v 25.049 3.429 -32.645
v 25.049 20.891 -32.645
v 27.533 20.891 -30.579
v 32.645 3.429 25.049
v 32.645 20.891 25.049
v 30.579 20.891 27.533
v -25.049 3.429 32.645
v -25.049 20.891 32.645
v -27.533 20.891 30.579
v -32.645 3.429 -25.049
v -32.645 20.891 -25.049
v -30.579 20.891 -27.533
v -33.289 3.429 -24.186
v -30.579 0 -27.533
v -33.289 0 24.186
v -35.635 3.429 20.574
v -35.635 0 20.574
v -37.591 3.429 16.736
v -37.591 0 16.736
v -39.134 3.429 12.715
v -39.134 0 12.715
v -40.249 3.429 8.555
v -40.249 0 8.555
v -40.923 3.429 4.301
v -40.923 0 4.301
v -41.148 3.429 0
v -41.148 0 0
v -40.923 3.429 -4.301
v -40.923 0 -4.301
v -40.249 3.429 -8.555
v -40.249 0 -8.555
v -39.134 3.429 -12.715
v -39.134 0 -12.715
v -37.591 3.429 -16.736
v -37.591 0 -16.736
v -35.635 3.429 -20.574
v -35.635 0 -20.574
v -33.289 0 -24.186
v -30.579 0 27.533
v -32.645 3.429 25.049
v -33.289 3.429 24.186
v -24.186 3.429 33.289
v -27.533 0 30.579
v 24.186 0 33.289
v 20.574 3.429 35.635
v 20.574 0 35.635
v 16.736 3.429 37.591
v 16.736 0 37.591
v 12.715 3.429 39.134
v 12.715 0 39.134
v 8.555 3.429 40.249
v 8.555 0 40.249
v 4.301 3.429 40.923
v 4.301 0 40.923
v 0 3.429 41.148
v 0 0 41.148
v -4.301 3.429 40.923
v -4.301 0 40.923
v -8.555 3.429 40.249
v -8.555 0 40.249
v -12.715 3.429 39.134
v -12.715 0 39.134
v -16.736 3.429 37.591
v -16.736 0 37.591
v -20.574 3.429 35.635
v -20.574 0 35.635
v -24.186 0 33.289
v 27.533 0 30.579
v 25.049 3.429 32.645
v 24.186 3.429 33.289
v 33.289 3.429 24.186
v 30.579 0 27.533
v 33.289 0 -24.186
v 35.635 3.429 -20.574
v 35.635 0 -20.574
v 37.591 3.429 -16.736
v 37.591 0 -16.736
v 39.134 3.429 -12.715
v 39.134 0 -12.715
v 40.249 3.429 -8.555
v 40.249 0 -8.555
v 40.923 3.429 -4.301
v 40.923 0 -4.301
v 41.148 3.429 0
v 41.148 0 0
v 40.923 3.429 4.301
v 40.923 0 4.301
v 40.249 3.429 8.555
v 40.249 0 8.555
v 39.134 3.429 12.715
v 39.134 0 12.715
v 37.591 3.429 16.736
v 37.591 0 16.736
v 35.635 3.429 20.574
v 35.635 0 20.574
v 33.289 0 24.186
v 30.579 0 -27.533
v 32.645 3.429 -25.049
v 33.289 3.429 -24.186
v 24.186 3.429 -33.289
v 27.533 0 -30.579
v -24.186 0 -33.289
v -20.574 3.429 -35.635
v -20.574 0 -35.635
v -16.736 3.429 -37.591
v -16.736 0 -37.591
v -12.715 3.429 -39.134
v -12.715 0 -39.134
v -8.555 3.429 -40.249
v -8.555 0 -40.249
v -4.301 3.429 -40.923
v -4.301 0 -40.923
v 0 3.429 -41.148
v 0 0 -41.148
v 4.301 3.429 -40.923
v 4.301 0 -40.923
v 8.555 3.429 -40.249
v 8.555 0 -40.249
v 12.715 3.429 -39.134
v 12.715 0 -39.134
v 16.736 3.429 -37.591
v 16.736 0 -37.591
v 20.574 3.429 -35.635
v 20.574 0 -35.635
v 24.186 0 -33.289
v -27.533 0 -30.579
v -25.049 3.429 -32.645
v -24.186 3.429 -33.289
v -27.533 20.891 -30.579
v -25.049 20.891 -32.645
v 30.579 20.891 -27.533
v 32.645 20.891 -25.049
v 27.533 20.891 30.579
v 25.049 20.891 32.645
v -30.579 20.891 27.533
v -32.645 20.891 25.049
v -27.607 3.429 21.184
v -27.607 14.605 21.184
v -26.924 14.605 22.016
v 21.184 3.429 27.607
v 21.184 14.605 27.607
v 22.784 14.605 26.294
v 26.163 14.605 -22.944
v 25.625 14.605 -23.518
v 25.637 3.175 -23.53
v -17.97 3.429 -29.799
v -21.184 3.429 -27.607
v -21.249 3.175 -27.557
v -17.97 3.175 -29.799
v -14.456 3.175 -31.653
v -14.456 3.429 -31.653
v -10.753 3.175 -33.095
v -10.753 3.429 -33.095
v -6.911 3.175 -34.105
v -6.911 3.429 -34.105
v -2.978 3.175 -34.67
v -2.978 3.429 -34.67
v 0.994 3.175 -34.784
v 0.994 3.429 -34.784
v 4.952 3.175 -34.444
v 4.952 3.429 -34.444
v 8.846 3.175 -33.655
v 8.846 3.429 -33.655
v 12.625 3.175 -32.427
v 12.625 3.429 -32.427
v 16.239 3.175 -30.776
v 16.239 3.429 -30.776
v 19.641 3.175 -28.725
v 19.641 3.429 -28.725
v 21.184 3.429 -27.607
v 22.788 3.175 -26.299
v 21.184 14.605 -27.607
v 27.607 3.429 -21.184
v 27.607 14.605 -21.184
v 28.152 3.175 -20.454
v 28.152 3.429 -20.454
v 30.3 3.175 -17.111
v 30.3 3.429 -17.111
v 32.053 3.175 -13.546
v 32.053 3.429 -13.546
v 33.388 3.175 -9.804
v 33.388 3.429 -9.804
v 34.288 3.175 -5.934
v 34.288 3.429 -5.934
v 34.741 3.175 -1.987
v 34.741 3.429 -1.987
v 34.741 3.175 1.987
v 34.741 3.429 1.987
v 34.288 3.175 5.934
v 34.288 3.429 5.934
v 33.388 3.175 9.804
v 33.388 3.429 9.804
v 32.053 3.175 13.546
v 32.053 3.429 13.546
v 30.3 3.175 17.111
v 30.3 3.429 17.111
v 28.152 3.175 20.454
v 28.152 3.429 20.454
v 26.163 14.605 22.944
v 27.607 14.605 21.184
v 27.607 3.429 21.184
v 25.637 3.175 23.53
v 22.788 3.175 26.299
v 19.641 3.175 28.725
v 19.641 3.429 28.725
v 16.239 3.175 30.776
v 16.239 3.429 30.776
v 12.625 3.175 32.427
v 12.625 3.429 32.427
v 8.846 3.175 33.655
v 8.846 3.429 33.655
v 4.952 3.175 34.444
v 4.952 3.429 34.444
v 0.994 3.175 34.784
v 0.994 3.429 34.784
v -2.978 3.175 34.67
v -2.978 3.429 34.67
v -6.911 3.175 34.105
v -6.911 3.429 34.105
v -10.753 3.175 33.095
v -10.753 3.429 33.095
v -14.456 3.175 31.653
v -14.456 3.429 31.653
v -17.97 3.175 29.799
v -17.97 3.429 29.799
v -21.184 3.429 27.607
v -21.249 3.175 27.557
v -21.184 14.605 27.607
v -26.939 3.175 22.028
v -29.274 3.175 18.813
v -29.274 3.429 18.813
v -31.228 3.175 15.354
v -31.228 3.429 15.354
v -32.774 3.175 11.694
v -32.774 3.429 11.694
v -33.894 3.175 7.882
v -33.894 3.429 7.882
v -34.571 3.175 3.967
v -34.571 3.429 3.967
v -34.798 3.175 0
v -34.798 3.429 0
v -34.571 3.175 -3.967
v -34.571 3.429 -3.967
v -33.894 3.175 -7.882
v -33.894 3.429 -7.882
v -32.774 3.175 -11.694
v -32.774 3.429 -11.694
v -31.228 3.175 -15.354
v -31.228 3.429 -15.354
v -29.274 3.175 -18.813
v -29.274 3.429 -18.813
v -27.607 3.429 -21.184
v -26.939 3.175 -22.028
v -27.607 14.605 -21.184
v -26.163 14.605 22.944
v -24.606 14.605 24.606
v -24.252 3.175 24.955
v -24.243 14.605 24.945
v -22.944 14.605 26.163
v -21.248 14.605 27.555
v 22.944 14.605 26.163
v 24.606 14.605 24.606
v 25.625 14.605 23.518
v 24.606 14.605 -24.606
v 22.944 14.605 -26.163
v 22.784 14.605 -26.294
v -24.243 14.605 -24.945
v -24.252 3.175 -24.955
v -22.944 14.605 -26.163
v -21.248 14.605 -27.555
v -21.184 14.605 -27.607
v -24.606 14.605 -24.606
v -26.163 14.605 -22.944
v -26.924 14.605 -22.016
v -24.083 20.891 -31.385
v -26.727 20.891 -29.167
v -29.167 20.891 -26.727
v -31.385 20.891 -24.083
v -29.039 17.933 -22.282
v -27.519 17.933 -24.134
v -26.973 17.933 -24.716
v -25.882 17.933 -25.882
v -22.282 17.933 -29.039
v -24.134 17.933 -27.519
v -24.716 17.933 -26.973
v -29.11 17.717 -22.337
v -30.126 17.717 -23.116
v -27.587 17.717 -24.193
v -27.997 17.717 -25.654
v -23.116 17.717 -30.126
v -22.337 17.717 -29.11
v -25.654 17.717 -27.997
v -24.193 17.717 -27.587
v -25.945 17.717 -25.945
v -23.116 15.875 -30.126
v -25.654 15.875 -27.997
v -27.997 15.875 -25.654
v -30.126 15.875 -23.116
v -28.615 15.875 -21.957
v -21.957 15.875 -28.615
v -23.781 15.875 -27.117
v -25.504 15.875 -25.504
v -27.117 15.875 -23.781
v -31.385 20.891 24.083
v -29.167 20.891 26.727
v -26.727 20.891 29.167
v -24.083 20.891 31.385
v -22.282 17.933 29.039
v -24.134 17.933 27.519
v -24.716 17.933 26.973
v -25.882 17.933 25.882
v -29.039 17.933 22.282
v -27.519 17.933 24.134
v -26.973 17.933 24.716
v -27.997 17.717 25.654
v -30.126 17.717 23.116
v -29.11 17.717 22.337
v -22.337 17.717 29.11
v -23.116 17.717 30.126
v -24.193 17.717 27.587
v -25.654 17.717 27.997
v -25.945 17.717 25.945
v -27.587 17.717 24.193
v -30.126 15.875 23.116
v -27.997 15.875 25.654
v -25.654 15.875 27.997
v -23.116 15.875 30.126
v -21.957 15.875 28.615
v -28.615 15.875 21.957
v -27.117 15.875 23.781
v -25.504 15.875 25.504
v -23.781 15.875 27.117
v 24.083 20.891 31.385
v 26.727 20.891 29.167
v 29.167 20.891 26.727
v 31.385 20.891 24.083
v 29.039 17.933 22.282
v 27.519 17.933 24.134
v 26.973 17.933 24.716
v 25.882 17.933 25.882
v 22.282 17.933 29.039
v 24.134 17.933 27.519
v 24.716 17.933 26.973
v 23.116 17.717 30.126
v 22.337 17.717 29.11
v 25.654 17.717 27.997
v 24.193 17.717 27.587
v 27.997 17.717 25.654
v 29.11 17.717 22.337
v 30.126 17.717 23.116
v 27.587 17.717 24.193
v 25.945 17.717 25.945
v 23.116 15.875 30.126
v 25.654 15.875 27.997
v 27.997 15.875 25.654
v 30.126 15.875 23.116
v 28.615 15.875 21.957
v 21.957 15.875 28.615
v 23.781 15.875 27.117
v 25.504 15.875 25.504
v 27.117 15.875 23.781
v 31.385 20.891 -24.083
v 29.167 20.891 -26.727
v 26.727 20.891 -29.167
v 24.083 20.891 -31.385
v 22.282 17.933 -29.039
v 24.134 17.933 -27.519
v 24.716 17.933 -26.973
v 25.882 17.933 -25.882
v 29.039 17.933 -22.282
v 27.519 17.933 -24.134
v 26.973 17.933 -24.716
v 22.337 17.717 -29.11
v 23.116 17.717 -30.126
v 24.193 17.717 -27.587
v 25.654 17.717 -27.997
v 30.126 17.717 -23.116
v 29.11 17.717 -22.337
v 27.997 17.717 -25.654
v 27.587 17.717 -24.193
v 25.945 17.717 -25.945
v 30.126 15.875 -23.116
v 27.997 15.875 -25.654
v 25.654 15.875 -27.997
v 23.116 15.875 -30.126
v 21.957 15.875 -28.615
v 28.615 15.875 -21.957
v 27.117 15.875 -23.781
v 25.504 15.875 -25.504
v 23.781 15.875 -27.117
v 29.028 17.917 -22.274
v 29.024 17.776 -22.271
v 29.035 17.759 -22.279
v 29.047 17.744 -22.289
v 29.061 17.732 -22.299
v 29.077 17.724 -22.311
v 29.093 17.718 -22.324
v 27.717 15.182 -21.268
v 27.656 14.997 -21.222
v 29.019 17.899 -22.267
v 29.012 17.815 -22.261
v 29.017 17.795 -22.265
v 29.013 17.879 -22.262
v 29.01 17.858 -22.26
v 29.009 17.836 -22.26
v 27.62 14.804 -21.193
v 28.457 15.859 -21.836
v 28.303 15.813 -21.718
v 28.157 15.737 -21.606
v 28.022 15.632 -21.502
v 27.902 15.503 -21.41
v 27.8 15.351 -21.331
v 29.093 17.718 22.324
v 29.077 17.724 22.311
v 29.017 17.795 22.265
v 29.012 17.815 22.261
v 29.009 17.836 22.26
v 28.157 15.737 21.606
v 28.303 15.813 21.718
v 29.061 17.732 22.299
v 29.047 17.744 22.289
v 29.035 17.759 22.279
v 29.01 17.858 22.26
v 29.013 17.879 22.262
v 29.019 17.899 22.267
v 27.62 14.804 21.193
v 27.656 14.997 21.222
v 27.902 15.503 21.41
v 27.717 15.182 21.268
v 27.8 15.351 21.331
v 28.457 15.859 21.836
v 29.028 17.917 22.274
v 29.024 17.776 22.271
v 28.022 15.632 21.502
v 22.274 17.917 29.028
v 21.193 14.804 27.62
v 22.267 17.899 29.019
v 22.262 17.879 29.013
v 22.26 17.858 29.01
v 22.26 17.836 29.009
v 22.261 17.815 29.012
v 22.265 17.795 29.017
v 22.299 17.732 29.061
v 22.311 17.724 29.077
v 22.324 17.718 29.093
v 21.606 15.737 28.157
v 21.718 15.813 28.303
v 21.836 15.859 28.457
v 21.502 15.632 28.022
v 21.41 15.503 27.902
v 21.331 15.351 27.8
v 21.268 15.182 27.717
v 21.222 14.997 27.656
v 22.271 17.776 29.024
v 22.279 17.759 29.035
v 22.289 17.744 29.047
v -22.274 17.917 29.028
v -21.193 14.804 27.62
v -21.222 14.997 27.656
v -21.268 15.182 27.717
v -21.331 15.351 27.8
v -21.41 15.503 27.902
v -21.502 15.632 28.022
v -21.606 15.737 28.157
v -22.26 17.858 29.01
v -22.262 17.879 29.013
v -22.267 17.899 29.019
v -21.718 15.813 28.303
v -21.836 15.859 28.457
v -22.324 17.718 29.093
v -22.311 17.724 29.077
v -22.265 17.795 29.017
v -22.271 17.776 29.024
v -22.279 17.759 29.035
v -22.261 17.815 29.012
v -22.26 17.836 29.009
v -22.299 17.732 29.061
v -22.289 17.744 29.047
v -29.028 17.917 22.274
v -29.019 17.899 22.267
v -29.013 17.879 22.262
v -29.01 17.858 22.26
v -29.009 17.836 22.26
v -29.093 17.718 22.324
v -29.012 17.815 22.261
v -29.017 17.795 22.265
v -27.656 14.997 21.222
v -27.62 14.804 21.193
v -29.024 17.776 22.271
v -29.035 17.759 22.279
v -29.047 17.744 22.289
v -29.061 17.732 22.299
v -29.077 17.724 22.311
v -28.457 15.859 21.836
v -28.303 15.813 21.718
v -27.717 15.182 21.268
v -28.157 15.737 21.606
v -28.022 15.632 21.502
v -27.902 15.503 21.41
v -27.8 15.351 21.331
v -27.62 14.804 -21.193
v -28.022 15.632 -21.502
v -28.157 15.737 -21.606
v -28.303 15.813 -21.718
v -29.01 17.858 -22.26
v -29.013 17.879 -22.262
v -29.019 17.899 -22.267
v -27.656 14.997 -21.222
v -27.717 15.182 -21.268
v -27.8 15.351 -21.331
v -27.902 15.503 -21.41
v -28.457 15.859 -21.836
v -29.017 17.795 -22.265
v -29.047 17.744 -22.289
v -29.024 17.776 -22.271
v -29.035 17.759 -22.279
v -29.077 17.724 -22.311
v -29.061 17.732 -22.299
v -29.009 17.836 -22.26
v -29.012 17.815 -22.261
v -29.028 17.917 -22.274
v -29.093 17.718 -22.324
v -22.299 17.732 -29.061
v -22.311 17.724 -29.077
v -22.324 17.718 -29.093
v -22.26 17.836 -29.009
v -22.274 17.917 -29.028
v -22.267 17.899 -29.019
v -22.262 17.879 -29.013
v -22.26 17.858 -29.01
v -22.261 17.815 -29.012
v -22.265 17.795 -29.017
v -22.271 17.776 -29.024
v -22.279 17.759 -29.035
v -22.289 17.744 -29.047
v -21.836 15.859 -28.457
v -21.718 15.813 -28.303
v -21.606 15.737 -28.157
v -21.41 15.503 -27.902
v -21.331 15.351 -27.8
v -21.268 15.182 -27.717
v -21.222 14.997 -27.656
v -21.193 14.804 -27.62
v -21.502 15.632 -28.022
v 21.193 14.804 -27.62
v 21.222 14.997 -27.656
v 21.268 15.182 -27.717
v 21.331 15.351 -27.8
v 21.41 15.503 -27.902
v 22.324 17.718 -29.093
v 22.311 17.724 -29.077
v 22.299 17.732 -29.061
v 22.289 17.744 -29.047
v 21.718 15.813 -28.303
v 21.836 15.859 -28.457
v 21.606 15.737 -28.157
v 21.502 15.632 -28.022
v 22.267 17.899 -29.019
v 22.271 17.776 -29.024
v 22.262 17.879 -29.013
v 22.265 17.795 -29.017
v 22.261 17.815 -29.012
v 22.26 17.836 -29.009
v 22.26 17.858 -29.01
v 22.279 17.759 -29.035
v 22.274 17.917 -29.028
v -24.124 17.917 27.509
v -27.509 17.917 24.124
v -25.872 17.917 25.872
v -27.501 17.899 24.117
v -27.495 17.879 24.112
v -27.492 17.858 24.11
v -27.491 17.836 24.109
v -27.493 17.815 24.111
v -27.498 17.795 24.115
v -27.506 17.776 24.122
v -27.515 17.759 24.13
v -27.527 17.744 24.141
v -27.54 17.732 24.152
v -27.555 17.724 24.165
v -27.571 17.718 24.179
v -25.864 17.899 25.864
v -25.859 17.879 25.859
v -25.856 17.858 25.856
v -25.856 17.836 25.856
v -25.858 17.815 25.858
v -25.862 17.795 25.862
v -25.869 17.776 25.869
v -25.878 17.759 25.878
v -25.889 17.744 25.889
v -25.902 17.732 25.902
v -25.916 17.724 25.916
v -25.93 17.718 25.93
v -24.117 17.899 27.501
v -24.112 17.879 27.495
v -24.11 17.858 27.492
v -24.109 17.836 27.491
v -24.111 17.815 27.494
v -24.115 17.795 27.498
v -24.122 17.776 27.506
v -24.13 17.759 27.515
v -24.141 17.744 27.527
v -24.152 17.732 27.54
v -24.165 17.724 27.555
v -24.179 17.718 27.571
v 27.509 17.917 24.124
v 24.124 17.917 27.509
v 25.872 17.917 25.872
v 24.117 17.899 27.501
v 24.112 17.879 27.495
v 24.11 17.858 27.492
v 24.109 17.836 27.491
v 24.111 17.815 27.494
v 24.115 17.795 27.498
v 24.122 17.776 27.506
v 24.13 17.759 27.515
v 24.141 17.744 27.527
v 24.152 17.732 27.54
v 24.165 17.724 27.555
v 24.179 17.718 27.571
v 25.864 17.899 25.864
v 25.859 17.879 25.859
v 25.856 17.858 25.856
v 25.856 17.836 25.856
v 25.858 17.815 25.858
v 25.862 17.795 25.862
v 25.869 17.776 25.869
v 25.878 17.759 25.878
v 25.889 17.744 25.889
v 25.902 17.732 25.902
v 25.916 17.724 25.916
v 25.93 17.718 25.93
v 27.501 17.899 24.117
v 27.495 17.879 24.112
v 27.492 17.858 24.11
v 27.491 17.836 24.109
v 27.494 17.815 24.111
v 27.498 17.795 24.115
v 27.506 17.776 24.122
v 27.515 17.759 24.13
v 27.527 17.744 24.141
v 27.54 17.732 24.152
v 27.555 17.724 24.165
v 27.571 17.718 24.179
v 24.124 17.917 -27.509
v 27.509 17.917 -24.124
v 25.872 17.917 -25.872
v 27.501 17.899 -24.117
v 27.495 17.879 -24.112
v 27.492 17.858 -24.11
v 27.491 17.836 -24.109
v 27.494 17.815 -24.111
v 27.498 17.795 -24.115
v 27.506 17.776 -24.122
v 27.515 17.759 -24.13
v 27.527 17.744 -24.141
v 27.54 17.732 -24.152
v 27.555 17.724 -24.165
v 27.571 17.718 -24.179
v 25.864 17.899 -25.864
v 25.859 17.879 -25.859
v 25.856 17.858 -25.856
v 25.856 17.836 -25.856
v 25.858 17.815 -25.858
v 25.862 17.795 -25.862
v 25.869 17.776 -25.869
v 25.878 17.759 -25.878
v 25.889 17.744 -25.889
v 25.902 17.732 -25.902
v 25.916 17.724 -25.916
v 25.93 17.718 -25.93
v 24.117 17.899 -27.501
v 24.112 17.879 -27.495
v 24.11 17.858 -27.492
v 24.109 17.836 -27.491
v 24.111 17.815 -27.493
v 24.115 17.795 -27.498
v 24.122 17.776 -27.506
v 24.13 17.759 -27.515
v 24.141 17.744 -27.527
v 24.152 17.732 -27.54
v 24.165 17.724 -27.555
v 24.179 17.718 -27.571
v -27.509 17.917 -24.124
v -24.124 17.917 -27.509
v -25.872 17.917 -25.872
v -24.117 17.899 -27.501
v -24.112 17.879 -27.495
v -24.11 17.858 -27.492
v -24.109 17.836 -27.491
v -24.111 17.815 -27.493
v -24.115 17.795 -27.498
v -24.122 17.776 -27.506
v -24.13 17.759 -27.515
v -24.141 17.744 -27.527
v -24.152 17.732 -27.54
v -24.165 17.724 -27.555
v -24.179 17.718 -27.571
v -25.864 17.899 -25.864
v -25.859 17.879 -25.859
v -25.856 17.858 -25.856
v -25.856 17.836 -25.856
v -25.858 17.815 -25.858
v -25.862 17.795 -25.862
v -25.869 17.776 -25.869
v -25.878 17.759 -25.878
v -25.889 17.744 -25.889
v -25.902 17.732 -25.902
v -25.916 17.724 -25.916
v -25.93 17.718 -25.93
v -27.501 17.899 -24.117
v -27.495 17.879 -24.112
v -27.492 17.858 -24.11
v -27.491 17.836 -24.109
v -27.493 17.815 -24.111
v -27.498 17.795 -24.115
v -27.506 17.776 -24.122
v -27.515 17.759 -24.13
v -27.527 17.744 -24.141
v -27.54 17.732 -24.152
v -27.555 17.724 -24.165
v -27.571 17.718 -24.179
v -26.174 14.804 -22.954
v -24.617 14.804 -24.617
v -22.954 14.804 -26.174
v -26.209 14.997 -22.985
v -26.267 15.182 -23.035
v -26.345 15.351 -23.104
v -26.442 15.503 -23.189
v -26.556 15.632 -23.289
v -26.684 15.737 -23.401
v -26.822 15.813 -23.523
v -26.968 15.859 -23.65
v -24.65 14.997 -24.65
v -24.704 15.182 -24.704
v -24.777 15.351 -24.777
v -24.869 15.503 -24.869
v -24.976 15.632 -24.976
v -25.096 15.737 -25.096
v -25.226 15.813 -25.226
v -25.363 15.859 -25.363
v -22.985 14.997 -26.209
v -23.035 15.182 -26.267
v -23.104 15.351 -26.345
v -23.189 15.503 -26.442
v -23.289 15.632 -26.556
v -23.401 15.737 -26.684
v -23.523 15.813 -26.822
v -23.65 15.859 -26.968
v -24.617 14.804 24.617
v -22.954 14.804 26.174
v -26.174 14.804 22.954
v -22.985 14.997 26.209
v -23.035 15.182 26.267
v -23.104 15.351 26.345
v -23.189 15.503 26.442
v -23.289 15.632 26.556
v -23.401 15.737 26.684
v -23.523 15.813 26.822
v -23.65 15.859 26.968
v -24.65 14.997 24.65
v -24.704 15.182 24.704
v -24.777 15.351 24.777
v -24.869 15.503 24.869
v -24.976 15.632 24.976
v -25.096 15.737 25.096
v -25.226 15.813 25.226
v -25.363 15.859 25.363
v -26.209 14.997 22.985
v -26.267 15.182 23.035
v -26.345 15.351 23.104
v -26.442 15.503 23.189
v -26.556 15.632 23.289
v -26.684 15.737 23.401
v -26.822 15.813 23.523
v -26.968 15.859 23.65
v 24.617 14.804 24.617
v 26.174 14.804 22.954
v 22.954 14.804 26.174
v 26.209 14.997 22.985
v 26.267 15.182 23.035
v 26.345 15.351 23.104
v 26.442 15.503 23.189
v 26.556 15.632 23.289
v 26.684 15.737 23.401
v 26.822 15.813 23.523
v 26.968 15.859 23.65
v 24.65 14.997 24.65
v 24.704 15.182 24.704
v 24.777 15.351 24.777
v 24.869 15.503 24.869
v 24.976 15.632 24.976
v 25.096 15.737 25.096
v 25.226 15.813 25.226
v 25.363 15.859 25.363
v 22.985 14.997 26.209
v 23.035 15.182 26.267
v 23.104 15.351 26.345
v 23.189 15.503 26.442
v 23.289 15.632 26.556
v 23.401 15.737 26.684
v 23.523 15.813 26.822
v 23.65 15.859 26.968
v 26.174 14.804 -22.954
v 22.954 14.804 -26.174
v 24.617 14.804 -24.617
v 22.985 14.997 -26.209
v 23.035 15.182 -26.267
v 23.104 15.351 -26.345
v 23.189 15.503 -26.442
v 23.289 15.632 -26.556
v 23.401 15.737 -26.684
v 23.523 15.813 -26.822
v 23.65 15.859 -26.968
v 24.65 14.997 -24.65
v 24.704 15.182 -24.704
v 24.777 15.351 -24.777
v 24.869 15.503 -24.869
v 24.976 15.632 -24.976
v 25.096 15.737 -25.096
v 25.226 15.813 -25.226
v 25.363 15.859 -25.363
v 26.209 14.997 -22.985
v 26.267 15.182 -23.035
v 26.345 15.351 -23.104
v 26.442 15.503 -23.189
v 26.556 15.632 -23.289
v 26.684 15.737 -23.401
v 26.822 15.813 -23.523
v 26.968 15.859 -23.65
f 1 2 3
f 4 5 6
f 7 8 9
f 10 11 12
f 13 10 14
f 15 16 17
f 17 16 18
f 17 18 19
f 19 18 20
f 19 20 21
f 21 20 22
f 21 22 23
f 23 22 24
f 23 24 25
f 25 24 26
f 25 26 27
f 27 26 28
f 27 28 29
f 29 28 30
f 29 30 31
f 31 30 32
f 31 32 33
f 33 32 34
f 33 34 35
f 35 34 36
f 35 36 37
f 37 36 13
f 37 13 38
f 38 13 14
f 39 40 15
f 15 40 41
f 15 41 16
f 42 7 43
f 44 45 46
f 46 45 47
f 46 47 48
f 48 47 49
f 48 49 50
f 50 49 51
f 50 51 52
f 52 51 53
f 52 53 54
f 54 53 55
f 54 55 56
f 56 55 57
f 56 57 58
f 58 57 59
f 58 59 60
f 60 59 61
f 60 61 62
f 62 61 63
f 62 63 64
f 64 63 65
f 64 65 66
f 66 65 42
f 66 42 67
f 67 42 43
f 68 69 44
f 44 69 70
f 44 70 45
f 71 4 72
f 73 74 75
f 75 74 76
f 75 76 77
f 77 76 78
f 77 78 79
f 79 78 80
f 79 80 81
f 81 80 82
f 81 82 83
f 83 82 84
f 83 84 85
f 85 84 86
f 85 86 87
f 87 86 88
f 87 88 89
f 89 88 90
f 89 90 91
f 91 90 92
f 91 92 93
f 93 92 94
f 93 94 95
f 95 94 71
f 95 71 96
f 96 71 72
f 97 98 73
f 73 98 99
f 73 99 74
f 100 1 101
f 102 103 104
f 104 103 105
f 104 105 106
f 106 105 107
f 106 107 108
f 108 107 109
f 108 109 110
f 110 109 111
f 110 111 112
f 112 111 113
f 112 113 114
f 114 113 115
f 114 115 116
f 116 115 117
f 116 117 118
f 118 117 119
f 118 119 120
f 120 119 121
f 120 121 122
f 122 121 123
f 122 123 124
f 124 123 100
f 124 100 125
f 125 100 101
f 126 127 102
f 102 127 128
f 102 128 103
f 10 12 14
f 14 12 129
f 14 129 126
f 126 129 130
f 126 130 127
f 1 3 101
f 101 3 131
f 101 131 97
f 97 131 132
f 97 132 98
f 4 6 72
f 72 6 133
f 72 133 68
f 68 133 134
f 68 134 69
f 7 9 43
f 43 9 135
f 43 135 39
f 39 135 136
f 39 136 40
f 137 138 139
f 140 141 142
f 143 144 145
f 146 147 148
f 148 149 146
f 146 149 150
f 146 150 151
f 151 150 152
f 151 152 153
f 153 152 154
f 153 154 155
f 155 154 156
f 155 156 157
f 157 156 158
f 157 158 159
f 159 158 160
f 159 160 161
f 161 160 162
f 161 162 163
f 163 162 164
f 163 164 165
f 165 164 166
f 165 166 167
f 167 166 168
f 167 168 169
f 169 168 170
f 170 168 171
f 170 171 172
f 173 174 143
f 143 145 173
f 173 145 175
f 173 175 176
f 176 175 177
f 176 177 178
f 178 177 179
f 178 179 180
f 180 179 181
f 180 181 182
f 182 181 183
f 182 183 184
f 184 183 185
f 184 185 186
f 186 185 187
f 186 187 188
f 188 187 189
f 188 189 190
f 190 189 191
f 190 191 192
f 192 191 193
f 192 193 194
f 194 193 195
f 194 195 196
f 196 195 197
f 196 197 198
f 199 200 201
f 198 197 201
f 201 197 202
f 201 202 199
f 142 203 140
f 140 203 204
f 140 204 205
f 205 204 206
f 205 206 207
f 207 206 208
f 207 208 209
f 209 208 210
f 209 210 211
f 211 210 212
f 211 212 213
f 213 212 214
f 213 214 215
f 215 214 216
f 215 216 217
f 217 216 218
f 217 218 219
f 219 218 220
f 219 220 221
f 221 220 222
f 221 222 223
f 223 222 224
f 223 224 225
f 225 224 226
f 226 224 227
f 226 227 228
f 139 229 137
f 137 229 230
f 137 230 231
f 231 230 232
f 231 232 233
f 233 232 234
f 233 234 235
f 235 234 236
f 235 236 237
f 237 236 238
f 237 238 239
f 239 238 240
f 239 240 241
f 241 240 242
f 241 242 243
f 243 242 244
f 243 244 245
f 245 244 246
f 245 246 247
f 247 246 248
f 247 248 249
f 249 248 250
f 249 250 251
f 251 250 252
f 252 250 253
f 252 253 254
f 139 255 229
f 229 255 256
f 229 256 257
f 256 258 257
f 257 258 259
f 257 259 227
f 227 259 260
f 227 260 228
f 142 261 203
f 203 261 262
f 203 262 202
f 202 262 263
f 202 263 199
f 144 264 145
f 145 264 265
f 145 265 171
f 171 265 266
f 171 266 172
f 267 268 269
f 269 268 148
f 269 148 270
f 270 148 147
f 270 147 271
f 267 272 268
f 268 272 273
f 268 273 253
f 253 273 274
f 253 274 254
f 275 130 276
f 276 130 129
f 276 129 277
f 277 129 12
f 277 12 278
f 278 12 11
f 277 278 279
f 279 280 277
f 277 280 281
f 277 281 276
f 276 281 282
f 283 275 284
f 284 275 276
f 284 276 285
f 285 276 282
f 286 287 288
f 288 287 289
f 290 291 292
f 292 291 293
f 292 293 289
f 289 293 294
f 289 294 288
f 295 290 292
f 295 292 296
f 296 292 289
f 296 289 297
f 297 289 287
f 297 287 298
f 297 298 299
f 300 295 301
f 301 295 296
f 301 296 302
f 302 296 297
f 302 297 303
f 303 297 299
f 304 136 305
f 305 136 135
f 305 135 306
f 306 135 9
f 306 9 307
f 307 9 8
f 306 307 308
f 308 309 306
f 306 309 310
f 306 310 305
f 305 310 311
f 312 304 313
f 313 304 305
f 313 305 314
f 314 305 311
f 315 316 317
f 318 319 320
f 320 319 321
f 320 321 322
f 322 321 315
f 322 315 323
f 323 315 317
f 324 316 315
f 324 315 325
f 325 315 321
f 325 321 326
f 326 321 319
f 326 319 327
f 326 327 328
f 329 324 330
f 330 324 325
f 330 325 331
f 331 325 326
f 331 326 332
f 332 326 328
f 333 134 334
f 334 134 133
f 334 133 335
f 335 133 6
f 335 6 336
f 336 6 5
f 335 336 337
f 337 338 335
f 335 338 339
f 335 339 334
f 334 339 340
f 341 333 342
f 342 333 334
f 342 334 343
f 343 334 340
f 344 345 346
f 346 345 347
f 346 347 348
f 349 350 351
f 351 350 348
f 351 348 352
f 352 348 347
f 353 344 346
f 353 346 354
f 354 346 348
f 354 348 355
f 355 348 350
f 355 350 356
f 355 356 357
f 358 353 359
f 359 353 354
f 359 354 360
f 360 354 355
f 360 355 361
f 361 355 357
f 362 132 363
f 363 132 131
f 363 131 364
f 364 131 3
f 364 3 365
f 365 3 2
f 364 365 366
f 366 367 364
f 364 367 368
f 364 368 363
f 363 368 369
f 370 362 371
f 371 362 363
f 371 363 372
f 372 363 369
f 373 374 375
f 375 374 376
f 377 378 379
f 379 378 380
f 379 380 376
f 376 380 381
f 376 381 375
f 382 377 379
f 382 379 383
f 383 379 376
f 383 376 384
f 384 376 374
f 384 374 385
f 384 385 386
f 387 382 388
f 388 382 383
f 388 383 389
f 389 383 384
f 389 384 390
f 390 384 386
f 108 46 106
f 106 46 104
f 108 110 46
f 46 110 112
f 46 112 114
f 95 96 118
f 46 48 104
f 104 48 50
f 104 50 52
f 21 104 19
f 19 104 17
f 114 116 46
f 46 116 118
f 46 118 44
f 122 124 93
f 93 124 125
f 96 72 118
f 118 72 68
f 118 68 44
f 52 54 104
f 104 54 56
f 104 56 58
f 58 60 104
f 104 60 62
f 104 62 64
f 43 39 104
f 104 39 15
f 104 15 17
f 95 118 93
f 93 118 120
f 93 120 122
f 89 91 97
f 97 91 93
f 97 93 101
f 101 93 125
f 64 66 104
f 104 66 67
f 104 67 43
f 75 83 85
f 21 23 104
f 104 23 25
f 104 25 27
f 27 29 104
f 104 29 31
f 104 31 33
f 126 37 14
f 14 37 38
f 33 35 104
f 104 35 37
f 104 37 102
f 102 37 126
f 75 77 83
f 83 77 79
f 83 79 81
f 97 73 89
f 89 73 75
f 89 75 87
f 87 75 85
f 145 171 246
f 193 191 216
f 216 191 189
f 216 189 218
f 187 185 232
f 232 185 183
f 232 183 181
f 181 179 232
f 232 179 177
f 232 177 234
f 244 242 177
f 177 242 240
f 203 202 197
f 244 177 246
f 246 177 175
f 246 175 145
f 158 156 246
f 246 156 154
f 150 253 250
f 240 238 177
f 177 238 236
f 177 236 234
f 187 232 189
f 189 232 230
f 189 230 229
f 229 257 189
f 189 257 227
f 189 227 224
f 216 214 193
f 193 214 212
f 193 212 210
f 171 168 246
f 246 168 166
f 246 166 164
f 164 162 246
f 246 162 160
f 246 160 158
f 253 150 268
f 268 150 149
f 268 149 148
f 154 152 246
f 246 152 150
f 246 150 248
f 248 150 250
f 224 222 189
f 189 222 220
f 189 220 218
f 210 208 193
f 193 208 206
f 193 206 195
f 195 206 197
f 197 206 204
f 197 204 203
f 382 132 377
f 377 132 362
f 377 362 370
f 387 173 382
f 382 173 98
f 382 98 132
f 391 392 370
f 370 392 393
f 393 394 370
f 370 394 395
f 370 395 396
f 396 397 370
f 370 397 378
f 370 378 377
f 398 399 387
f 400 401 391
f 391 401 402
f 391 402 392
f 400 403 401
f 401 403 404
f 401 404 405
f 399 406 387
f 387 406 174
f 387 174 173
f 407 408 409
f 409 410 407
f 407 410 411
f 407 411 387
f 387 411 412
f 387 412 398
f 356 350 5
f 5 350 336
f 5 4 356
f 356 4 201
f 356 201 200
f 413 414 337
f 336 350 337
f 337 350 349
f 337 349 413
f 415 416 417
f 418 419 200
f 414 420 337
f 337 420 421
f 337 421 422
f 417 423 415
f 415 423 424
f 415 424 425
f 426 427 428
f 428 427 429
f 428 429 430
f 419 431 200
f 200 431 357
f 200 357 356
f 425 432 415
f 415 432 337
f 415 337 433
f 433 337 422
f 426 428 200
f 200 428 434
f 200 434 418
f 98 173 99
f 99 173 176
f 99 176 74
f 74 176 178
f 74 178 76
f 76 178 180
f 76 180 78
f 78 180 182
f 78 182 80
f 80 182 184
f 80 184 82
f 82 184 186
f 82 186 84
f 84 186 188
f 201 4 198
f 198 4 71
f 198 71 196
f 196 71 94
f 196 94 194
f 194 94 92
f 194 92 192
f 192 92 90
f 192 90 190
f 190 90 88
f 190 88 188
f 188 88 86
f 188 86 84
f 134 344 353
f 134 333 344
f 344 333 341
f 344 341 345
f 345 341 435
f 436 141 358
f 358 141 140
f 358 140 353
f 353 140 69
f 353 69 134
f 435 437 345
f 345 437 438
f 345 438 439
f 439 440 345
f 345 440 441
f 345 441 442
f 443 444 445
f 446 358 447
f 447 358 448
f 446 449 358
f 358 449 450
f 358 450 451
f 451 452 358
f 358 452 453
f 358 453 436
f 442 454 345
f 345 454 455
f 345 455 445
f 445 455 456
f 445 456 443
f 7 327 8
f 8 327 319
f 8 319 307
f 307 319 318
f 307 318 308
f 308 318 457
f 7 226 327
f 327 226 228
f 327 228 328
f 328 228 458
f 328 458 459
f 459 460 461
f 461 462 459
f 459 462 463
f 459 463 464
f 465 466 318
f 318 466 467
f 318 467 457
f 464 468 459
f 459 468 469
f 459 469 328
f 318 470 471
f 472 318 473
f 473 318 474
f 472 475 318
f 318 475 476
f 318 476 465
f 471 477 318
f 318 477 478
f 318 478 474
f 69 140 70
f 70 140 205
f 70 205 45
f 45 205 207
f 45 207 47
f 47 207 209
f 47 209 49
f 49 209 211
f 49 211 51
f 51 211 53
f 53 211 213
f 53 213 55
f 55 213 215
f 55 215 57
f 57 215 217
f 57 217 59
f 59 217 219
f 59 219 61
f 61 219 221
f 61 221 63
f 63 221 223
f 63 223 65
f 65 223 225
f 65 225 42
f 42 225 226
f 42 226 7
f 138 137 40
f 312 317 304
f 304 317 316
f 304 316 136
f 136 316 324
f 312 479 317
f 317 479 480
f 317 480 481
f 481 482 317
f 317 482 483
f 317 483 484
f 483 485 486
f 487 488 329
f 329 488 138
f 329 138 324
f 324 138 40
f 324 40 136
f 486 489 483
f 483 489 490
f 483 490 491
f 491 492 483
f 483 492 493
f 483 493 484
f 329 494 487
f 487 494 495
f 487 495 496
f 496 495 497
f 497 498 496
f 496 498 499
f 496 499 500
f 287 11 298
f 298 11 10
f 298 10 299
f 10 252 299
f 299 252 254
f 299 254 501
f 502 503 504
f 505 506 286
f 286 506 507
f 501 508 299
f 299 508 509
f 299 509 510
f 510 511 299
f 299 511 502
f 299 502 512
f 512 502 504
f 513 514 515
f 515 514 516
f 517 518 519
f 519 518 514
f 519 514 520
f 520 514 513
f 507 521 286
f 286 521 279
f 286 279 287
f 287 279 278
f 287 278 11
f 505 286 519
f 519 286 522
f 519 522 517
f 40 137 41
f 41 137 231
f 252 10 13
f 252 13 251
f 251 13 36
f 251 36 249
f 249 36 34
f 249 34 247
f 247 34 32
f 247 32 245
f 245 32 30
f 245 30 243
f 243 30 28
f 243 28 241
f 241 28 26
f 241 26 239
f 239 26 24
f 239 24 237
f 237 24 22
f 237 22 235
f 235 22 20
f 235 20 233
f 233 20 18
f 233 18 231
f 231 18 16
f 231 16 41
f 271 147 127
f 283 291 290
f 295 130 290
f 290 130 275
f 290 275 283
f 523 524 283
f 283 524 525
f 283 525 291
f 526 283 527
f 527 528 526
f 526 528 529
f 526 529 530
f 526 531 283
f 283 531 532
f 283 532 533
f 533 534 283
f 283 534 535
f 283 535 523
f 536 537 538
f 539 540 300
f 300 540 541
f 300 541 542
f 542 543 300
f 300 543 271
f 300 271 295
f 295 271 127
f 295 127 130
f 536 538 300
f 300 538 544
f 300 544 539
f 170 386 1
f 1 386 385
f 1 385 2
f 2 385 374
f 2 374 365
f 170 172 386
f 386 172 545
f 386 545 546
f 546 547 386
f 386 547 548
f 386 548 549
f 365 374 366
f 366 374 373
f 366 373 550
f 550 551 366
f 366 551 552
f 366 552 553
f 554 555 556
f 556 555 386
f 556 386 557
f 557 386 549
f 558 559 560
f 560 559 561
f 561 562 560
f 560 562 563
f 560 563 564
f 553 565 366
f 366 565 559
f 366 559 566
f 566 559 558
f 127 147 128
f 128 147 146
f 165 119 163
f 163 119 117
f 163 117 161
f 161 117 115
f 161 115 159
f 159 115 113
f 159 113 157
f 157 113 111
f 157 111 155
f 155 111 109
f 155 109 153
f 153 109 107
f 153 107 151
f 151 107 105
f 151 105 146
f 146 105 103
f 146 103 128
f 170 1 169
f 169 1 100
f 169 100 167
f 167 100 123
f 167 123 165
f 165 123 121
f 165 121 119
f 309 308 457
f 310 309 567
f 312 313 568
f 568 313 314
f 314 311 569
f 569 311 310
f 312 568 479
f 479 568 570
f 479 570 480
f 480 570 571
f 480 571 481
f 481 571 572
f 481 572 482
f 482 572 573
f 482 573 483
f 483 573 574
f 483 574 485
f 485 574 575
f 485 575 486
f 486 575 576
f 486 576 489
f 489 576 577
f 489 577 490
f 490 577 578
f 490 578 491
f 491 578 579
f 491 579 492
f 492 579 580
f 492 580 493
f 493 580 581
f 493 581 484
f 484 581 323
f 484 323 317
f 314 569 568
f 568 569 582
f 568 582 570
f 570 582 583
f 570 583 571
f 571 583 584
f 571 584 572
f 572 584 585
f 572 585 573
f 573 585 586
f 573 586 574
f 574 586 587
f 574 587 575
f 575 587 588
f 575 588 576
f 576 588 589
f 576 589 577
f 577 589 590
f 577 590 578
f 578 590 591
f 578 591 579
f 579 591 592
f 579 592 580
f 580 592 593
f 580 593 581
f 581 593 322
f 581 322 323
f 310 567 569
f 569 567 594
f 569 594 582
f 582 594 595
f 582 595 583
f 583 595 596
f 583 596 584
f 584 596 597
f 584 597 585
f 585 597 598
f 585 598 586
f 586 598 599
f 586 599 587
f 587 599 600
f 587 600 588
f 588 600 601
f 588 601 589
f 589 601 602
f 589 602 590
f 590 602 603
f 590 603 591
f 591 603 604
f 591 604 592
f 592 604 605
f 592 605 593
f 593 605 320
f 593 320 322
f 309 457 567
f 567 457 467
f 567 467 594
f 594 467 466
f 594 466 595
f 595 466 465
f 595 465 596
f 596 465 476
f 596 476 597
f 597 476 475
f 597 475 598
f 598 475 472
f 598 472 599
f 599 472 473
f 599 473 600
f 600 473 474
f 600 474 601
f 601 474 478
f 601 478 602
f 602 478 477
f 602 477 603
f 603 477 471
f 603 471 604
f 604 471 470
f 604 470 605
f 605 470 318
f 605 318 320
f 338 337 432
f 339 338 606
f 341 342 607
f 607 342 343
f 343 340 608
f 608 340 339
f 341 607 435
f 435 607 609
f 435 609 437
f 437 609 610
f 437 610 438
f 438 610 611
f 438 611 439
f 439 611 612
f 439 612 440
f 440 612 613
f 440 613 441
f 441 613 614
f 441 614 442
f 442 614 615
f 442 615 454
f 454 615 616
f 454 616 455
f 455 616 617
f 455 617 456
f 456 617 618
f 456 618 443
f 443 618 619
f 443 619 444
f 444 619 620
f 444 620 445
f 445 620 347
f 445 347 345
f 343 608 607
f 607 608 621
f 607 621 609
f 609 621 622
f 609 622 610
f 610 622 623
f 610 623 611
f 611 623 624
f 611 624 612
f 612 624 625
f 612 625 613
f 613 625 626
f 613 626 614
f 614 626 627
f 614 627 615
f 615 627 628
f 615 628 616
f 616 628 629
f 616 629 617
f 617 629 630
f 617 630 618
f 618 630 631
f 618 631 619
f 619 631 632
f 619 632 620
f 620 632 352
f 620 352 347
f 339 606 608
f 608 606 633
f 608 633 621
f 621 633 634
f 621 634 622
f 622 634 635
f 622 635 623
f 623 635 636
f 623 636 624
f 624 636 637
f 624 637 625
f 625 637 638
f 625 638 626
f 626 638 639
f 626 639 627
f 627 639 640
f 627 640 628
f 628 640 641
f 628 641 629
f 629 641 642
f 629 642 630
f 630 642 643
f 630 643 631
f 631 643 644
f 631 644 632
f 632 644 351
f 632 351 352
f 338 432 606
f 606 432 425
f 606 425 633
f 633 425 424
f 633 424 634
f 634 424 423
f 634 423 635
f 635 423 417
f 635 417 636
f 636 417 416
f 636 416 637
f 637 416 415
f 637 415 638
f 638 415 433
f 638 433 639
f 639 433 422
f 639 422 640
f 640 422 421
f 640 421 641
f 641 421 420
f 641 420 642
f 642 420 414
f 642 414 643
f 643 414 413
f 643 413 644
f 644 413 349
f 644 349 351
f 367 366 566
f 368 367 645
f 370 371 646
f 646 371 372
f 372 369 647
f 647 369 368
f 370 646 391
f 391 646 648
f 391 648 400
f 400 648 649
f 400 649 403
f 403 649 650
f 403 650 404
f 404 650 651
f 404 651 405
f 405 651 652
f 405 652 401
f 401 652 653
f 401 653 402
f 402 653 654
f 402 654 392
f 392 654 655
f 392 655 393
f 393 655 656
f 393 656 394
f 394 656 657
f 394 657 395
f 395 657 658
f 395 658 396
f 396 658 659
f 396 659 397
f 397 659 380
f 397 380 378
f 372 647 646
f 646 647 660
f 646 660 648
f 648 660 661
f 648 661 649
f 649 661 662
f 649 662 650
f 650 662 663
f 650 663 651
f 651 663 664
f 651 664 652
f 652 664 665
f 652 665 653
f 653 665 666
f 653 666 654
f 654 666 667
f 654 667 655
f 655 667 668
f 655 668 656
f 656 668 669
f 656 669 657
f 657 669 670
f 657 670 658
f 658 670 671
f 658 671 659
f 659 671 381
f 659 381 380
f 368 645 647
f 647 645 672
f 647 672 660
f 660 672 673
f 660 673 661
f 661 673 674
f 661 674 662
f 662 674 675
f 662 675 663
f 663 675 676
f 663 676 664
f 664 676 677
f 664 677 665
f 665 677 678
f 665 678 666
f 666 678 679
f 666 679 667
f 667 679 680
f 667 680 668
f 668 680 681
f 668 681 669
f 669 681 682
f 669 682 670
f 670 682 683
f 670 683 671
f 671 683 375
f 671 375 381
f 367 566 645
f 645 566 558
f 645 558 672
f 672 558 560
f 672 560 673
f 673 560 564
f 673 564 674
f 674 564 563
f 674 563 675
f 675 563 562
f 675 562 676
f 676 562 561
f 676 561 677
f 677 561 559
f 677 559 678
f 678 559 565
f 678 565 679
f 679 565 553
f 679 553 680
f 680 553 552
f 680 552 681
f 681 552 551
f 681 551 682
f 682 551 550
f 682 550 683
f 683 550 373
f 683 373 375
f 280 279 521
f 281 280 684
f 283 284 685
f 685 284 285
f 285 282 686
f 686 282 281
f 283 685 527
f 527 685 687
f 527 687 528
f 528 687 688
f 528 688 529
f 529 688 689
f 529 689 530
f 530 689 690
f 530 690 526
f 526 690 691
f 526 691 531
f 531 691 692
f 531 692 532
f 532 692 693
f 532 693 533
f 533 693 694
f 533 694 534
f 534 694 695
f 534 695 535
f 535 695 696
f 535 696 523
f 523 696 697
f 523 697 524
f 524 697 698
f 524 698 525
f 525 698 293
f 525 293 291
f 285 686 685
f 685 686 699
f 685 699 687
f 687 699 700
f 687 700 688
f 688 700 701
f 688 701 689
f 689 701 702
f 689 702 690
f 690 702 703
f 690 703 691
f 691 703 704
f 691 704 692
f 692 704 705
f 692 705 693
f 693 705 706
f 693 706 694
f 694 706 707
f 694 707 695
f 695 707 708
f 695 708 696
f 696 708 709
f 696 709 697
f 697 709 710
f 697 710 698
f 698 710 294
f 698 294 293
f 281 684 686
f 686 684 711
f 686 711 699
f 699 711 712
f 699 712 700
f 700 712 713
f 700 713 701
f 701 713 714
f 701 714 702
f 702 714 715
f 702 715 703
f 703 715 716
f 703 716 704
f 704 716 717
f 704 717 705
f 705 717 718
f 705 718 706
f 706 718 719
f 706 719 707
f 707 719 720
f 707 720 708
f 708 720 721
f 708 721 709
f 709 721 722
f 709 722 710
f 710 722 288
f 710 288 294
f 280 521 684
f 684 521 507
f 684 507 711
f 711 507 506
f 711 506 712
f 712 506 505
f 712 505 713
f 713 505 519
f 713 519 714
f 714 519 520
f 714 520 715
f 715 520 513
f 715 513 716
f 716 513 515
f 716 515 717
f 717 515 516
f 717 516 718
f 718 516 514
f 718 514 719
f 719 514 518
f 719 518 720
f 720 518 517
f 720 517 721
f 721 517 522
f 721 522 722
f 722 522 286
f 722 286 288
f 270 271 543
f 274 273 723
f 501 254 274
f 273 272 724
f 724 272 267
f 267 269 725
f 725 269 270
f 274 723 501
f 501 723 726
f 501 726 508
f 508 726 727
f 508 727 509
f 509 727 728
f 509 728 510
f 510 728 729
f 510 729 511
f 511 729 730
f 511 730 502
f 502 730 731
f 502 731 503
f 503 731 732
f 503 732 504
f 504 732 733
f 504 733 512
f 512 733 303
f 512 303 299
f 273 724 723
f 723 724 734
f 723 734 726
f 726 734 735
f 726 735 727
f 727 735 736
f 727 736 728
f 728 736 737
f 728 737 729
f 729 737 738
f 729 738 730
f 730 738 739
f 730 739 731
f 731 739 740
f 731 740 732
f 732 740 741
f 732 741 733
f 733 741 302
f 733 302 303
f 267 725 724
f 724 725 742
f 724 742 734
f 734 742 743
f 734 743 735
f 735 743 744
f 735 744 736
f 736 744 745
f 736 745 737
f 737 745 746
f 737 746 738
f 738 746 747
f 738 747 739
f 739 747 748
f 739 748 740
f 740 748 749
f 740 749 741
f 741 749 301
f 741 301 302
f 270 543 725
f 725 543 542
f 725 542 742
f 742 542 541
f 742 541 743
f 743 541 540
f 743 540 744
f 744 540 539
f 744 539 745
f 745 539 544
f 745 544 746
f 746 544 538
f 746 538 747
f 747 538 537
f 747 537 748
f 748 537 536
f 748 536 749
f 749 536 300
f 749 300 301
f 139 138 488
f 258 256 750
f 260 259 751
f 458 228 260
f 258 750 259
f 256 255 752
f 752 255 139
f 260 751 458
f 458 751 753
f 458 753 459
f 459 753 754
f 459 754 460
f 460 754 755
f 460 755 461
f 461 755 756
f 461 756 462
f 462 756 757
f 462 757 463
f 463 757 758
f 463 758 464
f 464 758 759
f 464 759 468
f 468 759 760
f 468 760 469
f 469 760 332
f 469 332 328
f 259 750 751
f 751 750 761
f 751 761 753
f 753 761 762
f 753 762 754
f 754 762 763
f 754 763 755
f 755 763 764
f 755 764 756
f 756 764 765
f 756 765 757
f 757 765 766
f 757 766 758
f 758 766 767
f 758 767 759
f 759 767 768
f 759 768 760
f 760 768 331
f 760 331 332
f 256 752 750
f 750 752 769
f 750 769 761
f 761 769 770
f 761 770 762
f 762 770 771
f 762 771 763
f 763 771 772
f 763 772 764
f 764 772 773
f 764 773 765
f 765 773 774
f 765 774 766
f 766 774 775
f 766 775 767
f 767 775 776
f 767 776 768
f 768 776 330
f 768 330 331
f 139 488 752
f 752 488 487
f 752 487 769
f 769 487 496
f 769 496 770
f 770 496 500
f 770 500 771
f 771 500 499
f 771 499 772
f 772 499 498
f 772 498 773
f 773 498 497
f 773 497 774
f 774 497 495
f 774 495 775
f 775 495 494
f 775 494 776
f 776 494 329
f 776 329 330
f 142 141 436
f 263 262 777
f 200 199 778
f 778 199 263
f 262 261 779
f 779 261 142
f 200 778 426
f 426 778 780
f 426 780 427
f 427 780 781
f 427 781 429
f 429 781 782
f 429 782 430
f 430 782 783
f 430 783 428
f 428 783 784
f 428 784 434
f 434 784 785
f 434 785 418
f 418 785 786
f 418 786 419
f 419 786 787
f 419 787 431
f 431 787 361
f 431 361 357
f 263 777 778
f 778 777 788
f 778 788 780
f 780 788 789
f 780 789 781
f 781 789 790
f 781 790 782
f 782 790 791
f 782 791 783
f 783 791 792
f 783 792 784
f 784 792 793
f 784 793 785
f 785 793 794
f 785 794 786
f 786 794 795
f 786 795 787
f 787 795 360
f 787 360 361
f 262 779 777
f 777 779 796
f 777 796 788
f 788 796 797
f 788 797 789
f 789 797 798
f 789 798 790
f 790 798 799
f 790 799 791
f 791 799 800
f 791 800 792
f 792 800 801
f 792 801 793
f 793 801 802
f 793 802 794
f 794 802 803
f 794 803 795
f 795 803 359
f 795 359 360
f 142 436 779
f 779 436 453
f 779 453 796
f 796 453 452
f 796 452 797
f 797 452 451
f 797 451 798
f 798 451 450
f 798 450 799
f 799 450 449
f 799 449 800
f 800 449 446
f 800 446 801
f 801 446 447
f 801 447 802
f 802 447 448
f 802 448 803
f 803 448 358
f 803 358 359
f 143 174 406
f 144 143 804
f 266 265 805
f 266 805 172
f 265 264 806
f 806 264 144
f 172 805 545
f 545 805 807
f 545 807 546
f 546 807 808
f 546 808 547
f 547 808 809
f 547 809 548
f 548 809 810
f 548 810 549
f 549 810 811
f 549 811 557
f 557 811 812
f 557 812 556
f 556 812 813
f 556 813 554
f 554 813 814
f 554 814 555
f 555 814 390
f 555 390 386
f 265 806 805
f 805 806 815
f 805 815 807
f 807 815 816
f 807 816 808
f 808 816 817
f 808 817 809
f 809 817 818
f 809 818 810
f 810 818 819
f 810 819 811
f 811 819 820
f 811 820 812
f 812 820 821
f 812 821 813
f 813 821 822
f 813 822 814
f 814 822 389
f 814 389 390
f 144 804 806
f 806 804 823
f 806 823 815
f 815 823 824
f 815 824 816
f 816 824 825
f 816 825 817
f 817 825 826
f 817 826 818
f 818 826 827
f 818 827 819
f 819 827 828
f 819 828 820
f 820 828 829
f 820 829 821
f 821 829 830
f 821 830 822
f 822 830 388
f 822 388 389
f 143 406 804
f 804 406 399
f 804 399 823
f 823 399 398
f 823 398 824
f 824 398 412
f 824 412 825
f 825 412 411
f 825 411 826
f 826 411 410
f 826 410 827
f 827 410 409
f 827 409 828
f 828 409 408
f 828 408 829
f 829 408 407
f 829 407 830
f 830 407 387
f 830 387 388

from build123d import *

# Parameters (mm, degrees)
CUT_EXTRUDE3_DEPTH = 17.4625
FILLET1_R          = 0.127
FILLET2_R          = 1.27


with BuildPart() as part:
    # Sketch1 → Revolve1 (revolve)
    with BuildSketch(Plane.XY):
        Polygon((0, 0), (-41.148, 0), (-41.148, 20.8915), (-39.5605, 20.8915), (-36.3855, 17.7165), (-37.973, 17.7165), (-37.973, 15.875), (-34.798, 15.875), (-34.798, 3.175), (0, 3.175), align=None)
    revolve(axis=Axis((0, 3.175, 0), (0, -1, 0)))

    # Sketch2 → Cut-Extrude3 (cut)
    with BuildSketch(Plane(origin=(0, 20.8915, 0), x_dir=(1, 0, 0), z_dir=(0, 1, 0))):
        with BuildLine():
            Line((-24.082906512, 31.385454819), (0, 0))
            Line((0, 0), (24.082906512, 31.385454819))
            ThreePointArc((24.082906512, 31.385454819), (0, 39.5605), (-24.082906512, 31.385454819))
        make_face()
        with BuildLine():
            Line((-25.049315281, 32.644903246), (-24.082906512, 31.385454819))
            ThreePointArc((-24.082906512, 31.385454819), (0, 39.5605), (24.082906512, 31.385454819))
            Line((24.082906512, 31.385454819), (25.049315281, 32.644903246))
            ThreePointArc((25.049315281, 32.644903246), (0, 41.148), (-25.049315281, 32.644903246))
        make_face()
        with BuildLine():
            Line((31.385454819, 24.082906512), (0, 0))
            Line((0, 0), (31.385454819, -24.082906512))
            ThreePointArc((31.385454819, -24.082906512), (37.461029388, -12.716305967), (39.5605, 0))
            ThreePointArc((39.5605, 0), (37.461029388, 12.716305967), (31.385454819, 24.082906512))
        make_face()
        with BuildLine():
            Line((32.644903246, 25.049315281), (31.385454819, 24.082906512))
            ThreePointArc((31.385454819, 24.082906512), (37.461029388, 12.716305967), (39.5605, 0))
            ThreePointArc((39.5605, 0), (37.461029388, -12.716305967), (31.385454819, -24.082906512))
            Line((31.385454819, -24.082906512), (32.644903246, -25.049315281))
            ThreePointArc((32.644903246, -25.049315281), (38.964280968, -13.226591118), (41.148, 0))
            ThreePointArc((41.148, 0), (38.964280968, 13.226591118), (32.644903246, 25.049315281))
        make_face()
        with BuildLine():
            Line((24.082906512, -31.385454819), (0, 0))
            Line((0, 0), (-24.082906512, -31.385454819))
            ThreePointArc((-24.082906512, -31.385454819), (0, -39.5605), (24.082906512, -31.385454819))
        make_face()
        with BuildLine():
            Line((25.049315281, -32.644903246), (24.082906512, -31.385454819))
            ThreePointArc((24.082906512, -31.385454819), (0, -39.5605), (-24.082906512, -31.385454819))
            Line((-24.082906512, -31.385454819), (-25.049315281, -32.644903246))
            ThreePointArc((-25.049315281, -32.644903246), (0, -41.148), (25.049315281, -32.644903246))
        make_face()
        with BuildLine():
            Line((0, 0), (-32.644903246, 25.049315281))
            ThreePointArc((-32.644903246, 25.049315281), (-41.148, 0), (-32.644903246, -25.049315281))
            Line((-32.644903246, -25.049315281), (0, 0))
        make_face()
    extrude(amount=-CUT_EXTRUDE3_DEPTH, mode=Mode.SUBTRACT)

    # Fillet1
    fillet1_edges = [part.edges().sort_by_distance(p)[0] for p in [
        (25.728433787, 17.7165, -25.728433787),
        (25.728433787, 17.7165, 25.728433787),
        (-25.728433787, 17.7165, 25.728433787),
        (-25.728433787, 17.7165, -25.728433787),
    ]]
    fillet(fillet1_edges, radius=FILLET1_R)

    # Fillet2
    fillet2_edges = [part.edges().sort_by_distance(p)[0] for p in [
        (24.605901772, 15.875, -24.605901772),
        (24.605901772, 15.875, 24.605901772),
        (-24.605901772, 15.875, 24.605901772),
        (-24.605901772, 15.875, -24.605901772),
    ]]
    fillet(fillet2_edges, radius=FILLET2_R)


solid = part.part
